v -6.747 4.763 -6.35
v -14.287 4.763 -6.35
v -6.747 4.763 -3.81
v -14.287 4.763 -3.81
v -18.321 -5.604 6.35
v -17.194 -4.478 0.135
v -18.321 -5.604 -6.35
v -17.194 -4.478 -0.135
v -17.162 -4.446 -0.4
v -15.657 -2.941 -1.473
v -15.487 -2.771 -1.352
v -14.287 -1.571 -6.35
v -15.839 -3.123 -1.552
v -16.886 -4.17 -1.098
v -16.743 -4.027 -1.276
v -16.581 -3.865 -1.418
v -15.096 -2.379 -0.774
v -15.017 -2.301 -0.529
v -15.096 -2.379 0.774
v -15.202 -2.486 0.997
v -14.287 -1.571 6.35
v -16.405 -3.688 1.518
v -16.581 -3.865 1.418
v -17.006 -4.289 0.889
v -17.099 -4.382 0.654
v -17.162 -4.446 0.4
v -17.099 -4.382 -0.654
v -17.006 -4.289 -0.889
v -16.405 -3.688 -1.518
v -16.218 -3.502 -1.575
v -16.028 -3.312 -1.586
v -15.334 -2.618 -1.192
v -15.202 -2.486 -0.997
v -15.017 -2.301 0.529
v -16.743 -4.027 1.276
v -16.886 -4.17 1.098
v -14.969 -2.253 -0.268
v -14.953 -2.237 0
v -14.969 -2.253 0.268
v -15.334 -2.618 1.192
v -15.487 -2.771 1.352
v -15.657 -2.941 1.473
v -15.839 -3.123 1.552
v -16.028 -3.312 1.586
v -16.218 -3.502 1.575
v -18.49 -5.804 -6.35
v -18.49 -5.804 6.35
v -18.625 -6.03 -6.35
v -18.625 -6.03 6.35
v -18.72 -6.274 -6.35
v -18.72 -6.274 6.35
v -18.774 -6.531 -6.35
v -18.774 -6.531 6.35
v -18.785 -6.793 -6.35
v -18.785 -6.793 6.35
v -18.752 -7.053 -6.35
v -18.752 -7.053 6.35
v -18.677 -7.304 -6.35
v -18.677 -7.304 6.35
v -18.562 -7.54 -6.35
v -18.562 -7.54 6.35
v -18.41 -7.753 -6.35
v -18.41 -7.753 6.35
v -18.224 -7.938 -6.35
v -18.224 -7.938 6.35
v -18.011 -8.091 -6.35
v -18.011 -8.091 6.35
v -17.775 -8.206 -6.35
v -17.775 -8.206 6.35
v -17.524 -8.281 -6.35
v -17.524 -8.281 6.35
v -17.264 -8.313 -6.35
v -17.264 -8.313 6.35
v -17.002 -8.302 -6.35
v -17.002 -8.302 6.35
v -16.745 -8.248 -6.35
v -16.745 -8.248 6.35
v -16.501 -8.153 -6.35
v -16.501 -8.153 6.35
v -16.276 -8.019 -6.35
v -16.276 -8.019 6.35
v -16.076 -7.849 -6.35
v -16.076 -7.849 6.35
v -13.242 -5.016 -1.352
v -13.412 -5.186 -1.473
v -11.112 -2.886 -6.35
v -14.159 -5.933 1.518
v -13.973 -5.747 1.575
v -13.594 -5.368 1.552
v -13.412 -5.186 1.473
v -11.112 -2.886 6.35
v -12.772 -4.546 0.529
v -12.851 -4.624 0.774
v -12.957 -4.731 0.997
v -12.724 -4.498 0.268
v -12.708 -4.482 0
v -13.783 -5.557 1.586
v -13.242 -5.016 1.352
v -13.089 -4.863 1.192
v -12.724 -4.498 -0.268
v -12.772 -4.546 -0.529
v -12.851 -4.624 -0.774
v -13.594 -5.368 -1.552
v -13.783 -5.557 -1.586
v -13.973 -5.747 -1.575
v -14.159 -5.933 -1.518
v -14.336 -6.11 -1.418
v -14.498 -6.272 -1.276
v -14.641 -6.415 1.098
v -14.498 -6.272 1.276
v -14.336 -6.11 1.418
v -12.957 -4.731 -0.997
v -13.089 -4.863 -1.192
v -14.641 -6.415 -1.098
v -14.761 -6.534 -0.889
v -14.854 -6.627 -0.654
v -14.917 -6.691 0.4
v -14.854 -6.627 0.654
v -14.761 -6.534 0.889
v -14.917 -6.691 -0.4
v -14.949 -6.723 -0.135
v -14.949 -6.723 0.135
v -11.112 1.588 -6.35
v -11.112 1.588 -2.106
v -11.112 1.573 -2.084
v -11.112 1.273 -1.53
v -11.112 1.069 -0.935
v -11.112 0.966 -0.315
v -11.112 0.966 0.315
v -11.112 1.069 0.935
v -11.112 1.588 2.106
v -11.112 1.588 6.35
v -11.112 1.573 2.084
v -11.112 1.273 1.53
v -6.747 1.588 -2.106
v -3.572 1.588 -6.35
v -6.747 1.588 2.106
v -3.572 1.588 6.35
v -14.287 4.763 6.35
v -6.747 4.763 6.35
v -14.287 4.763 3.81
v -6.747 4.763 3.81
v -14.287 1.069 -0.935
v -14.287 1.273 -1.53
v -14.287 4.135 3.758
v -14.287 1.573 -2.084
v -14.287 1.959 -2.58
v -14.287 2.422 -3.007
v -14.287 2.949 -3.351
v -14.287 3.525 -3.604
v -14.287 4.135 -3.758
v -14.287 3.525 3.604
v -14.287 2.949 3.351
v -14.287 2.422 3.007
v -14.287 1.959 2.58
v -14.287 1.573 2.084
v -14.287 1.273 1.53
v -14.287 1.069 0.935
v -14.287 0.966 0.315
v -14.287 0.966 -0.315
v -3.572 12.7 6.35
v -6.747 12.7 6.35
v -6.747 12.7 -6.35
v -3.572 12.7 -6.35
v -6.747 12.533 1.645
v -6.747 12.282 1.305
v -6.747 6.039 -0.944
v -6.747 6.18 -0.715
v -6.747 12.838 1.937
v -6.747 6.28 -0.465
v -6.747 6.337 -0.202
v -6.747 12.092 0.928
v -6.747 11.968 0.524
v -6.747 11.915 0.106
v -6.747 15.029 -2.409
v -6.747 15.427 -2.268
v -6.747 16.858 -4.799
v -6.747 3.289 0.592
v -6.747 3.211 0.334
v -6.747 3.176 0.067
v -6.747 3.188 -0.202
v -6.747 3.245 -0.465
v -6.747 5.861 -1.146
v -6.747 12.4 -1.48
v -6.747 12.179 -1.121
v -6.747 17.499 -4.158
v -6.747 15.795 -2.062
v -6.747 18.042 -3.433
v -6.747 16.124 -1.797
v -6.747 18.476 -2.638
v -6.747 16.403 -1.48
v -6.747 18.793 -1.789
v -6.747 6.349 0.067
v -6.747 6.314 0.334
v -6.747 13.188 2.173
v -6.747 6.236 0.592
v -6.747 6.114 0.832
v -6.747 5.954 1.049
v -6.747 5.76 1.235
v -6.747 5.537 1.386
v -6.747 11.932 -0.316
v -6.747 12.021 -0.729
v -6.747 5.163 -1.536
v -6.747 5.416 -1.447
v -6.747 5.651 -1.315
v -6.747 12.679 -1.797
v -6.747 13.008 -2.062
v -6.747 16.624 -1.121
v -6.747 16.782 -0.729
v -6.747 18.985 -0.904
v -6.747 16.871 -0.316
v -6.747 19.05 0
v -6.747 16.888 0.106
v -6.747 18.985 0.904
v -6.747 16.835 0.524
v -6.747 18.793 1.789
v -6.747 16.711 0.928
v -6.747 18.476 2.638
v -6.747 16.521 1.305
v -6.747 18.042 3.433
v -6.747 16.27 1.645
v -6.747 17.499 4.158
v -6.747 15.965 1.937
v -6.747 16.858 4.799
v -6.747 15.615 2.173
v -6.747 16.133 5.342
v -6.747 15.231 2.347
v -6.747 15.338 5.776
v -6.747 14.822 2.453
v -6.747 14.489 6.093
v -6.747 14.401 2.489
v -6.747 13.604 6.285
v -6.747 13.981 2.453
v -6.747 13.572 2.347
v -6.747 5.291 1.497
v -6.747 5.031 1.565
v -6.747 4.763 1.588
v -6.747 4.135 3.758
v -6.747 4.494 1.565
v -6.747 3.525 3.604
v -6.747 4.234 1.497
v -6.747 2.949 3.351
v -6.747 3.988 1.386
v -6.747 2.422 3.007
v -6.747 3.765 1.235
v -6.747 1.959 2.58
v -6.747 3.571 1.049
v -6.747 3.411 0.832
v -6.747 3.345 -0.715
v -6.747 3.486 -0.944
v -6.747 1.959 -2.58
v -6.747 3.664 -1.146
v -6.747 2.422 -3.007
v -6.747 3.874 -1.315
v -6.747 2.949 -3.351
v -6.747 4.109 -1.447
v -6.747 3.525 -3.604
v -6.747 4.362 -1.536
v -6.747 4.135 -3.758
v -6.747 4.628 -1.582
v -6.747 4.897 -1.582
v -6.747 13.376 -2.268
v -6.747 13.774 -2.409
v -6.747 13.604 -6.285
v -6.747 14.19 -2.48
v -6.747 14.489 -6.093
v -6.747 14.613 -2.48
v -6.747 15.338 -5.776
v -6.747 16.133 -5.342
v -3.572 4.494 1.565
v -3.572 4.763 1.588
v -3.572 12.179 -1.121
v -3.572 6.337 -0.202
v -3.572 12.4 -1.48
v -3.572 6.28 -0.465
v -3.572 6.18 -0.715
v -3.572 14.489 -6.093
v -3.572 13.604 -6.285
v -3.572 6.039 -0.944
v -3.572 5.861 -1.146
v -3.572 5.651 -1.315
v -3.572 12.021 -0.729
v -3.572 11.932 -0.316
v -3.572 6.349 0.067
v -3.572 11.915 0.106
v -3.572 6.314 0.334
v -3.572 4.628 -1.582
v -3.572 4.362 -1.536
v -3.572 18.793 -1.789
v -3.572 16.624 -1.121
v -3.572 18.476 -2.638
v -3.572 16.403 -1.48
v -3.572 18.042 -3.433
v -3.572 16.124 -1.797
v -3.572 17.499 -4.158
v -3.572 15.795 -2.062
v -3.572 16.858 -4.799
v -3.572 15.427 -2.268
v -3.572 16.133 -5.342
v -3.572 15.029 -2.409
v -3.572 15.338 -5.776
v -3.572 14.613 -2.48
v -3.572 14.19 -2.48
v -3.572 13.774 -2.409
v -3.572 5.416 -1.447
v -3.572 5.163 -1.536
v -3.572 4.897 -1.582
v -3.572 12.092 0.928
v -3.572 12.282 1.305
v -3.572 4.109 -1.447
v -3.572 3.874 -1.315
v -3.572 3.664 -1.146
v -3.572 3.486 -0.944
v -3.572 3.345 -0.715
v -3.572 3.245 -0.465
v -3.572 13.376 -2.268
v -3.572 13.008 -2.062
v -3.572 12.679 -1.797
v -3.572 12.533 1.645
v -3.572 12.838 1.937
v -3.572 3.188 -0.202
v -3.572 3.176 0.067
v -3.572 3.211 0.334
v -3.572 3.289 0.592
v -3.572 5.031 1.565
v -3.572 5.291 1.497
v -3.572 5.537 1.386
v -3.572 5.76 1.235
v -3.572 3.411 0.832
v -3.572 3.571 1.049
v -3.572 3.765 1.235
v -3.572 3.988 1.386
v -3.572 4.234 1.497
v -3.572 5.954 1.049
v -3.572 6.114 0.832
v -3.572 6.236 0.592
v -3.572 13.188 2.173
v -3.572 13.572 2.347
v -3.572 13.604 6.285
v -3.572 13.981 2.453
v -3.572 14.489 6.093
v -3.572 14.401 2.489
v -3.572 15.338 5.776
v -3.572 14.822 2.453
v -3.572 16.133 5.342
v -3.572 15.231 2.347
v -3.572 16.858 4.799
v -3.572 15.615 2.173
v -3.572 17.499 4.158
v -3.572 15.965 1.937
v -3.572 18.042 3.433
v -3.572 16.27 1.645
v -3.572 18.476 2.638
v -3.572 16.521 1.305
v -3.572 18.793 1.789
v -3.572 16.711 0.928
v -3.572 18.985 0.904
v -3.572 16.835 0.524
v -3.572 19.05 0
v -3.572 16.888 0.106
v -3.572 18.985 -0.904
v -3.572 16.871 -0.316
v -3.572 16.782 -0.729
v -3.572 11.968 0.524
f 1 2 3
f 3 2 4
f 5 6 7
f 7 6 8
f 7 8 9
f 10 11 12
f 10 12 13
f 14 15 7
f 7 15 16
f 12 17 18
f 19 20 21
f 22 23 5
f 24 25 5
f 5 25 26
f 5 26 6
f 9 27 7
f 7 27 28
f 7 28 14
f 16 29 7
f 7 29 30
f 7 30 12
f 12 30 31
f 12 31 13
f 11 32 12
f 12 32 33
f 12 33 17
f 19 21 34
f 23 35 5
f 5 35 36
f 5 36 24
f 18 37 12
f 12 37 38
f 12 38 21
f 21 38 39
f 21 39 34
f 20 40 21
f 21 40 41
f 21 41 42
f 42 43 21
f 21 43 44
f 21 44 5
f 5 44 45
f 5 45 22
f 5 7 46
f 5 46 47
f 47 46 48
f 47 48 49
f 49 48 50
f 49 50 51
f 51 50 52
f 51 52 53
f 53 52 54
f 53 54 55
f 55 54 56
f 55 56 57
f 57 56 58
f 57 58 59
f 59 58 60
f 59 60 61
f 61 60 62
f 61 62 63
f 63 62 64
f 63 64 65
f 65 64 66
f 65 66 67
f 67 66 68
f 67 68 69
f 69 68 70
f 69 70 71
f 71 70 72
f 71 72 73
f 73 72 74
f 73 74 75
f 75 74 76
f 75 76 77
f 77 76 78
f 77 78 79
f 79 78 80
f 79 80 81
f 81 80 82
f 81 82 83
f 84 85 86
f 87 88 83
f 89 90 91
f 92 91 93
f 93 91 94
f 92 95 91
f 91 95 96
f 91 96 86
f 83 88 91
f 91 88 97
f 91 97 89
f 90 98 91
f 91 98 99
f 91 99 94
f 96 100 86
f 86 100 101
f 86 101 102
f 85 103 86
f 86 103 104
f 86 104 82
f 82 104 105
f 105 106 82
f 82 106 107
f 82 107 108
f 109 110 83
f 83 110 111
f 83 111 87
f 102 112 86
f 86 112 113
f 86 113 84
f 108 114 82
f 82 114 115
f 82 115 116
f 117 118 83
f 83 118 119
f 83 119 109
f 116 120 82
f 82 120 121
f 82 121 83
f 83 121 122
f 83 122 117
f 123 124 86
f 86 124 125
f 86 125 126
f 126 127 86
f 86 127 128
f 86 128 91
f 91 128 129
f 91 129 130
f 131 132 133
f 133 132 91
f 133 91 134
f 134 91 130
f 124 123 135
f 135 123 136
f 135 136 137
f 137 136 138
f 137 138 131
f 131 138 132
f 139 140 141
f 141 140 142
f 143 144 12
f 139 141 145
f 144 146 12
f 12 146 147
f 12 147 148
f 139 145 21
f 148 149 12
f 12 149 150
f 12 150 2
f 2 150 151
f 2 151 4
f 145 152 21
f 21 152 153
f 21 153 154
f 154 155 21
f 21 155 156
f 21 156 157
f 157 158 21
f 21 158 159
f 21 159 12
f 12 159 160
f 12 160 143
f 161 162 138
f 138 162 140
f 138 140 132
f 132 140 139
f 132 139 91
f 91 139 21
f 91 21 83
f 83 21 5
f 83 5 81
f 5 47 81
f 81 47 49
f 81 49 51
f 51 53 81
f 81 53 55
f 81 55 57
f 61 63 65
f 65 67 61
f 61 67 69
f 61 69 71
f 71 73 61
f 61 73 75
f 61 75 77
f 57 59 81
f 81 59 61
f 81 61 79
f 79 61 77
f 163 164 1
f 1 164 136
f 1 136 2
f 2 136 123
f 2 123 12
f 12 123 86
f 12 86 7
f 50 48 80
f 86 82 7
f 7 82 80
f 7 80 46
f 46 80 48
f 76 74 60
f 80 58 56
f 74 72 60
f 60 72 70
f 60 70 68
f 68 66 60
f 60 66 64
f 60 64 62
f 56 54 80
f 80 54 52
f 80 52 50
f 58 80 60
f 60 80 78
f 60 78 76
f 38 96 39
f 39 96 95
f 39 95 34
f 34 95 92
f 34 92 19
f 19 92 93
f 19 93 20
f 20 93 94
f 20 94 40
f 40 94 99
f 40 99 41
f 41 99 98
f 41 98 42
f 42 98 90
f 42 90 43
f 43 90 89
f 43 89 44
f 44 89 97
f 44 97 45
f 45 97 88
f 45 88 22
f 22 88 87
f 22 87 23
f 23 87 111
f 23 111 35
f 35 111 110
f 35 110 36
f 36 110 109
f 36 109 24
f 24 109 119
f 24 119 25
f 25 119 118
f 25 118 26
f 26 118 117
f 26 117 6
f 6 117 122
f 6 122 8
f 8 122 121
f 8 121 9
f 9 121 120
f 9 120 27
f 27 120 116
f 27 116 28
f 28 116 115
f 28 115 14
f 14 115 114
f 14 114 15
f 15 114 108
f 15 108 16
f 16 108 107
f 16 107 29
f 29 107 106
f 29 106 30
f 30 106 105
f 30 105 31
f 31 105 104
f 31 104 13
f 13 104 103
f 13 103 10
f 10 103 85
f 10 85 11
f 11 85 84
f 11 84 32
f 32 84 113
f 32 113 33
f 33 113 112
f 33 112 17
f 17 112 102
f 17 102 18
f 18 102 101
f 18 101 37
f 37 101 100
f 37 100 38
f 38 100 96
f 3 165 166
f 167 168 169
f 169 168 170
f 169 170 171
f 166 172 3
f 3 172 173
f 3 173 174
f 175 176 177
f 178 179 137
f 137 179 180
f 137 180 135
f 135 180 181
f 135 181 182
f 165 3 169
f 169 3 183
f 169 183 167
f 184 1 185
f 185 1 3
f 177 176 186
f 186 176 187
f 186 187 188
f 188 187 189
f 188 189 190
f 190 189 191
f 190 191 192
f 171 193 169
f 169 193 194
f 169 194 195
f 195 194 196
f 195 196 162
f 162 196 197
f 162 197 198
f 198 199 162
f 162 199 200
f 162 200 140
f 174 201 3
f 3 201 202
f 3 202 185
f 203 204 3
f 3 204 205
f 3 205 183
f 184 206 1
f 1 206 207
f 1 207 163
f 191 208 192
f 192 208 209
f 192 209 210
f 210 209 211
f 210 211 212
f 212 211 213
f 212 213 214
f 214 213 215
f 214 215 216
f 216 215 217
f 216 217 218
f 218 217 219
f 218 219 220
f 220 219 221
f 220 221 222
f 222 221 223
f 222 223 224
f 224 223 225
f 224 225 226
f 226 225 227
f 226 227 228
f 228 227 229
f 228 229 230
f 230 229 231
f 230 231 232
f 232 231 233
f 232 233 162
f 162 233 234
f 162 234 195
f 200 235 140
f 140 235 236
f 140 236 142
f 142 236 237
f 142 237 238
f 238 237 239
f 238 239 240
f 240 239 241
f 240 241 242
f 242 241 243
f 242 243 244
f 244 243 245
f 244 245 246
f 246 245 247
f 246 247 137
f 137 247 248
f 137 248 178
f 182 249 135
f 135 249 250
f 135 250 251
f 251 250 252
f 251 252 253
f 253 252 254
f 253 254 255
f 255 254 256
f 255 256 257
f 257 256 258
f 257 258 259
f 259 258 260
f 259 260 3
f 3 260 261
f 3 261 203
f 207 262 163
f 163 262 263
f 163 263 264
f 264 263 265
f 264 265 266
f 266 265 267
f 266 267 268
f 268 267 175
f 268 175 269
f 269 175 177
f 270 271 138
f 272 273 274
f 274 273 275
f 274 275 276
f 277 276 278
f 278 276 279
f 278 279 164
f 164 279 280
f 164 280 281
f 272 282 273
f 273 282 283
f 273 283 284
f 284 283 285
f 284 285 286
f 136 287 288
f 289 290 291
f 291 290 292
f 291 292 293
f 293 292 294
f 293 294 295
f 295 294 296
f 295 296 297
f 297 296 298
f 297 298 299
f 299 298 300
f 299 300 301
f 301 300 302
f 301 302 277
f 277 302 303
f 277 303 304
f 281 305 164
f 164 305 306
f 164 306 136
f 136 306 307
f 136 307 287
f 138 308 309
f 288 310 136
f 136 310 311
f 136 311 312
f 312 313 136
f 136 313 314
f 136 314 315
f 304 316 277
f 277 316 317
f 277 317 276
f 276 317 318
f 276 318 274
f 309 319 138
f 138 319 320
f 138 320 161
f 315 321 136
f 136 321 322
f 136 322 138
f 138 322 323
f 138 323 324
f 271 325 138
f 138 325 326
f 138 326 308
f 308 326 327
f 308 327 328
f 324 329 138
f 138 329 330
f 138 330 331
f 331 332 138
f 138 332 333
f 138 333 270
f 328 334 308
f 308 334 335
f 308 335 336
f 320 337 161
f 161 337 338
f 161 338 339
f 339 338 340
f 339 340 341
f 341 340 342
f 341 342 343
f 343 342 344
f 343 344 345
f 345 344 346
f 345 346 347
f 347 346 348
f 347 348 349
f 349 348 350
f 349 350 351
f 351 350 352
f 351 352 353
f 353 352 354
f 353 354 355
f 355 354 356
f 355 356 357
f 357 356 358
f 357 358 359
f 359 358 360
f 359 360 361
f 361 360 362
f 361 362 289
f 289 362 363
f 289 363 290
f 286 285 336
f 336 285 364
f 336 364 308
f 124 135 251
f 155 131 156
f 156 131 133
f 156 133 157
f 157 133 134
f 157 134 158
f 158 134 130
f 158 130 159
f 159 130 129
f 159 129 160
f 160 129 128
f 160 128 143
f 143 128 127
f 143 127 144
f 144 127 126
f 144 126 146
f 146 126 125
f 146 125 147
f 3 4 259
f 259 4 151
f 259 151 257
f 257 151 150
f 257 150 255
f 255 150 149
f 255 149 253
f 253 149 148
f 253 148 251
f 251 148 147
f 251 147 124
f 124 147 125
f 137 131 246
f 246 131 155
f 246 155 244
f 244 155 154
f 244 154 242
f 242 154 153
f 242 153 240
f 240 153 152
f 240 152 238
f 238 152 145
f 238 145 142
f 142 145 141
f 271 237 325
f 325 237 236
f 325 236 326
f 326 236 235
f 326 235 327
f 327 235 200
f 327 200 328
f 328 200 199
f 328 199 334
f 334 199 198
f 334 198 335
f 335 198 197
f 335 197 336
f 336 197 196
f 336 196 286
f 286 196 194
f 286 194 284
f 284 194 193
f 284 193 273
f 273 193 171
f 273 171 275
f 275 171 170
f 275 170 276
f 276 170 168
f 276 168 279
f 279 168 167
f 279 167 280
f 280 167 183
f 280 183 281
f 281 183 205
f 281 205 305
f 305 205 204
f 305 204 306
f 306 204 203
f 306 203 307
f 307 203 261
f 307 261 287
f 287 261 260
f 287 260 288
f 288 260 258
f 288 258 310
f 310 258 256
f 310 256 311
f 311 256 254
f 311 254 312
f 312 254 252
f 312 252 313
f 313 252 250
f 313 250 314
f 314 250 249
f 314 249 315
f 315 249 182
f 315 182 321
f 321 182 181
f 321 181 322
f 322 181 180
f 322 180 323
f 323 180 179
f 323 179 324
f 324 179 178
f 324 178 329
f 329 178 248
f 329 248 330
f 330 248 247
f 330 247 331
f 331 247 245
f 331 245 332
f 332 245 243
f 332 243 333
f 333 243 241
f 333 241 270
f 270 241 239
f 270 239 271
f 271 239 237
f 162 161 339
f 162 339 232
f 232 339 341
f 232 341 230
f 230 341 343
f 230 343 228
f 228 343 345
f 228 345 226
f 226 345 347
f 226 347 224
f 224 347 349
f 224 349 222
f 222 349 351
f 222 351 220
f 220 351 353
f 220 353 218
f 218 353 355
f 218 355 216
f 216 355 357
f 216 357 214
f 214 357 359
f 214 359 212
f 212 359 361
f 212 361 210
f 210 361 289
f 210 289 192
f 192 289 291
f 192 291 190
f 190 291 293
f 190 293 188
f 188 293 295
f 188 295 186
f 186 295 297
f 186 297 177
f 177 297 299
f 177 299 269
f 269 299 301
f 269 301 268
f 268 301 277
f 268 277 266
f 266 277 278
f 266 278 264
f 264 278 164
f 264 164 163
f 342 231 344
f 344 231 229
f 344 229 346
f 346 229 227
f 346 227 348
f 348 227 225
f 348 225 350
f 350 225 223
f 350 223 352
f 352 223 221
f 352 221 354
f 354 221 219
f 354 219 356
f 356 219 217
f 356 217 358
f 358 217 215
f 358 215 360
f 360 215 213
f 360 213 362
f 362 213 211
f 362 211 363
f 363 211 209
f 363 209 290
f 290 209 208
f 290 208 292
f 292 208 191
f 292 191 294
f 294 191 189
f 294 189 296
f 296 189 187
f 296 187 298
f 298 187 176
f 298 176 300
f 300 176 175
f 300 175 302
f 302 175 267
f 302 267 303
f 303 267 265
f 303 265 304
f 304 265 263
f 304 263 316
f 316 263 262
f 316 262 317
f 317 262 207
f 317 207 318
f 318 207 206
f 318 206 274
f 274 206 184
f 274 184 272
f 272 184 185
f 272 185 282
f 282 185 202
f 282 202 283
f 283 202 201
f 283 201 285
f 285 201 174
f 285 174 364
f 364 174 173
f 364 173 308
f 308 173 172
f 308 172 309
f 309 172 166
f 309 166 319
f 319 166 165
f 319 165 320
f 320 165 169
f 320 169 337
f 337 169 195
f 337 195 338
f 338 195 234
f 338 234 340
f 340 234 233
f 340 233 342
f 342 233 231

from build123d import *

# Parameters (mm, degrees)
BOSS_EXTRUDE1_DEPTH     = 6.35
SKETCH3_R               = 1.5875
CUT_EXTRUDE1_DEPTH      = 12.696129591
CUT_EXTRUDE1_DEPTH_BACK = 11.834286606
SKETCH4_W               = 3.175
SKETCH4_H               = 7.9375
BOSS_EXTRUDE3_DEPTH     = 6.35
SKETCH5_R               = 3.81
CUT_EXTRUDE2_DEPTH      = 7.540625
SKETCH6_R               = 1.5875
CUT_EXTRUDE3_DEPTH      = 15.2875
SKETCH7_W               = 3.571875
SKETCH7_H               = 3.175
CUT_EXTRUDE4_DEPTH      = 13.7
BOSS_EXTRUDE4_DEPTH     = 3.175
CUT_EXTRUDE5_DEPTH      = 13.039014125
CUT_EXTRUDE5_DEPTH_BACK = 4.175


with BuildPart() as part:
    # Sketch2 → Boss-Extrude1 (new body, symmetric)
    with BuildSketch(Plane.XY):
        with BuildLine():
            Line((-14.2875, -1.570977871), (-18.32092114, -5.604399011))
            ThreePointArc((-18.32092114, -5.604399011), (-18.32092114, -7.849463042), (-16.07585711, -7.849463042))
            Line((-16.07585711, -7.849463042), (-11.1125, -2.886105932))
            Line((-11.1125, -2.886105932), (-11.1125, 1.5875))
            Line((-11.1125, 1.5875), (0, 1.5875))
            Line((0, 1.5875), (0, 4.7625))
            Line((0, 4.7625), (-14.2875, 4.7625))
            Line((-14.2875, 4.7625), (-14.2875, -1.570977871))
        make_face()
    extrude(amount=BOSS_EXTRUDE1_DEPTH, both=True)

    # Sketch3 → Cut-Extrude1 (cut, two sides)
    with BuildSketch(Plane(origin=(-4.113197034, 4.113197034, 0), x_dir=(0, 0, -1), z_dir=(0.707106781, -0.707106781, 0))) as cut_extrude1_sk:
        with Locations((0, -13.742756121)):
            Circle(SKETCH3_R)
    extrude(amount=CUT_EXTRUDE1_DEPTH, mode=Mode.SUBTRACT)
    extrude(cut_extrude1_sk.sketch, amount=-CUT_EXTRUDE1_DEPTH_BACK, mode=Mode.SUBTRACT)

    # Sketch4 → Boss-Extrude3 (add, symmetric)
    with BuildSketch(Plane.XY):
        with Locations((-5.159375, 5.55625)):
            Rectangle(SKETCH4_W, SKETCH4_H)
    extrude(amount=BOSS_EXTRUDE3_DEPTH, both=True)

    # Sketch5 → Cut-Extrude2 (cut)
    with BuildSketch(Plane.ZY.offset(14.2875)):
        with Locations((0, 4.7625)):
            Circle(SKETCH5_R)
    extrude(amount=-CUT_EXTRUDE2_DEPTH, mode=Mode.SUBTRACT)

    # Sketch6 → Cut-Extrude3 (cut, through all)
    with BuildSketch(Plane.ZY.offset(14.2875)):
        with Locations((0, 4.7625)):
            Circle(SKETCH6_R)
    extrude(amount=-CUT_EXTRUDE3_DEPTH, mode=Mode.SUBTRACT)

    # Sketch7 → Cut-Extrude4 (cut, through all)
    with BuildSketch(Plane.XY.offset(6.35)):
        with Locations((-1.7859375, 3.175)):
            Rectangle(SKETCH7_W, SKETCH7_H)
    extrude(amount=-CUT_EXTRUDE4_DEPTH, mode=Mode.SUBTRACT)

    # Sketch8 → Boss-Extrude4 (add)
    with BuildSketch(Plane(origin=(-3.571875, 0, 0), x_dir=(0, 0, -1), z_dir=(1, 0, 0))):
        with BuildLine():
            ThreePointArc((6.35, 12.7), (0, 19.05), (-6.35, 12.7))
            ThreePointArc((-6.35, 12.7), (-6.133628997, 11.056499064), (-5.499261314, 9.525))
            Line((-5.499261314, 9.525), (5.499261314, 9.525))
            ThreePointArc((5.499261314, 9.525), (6.133628997, 11.056499064), (6.35, 12.7))
        make_face()
        with BuildLine():
            Line((5.499261314, 9.525), (-5.499261314, 9.525))
            ThreePointArc((-5.499261314, 9.525), (0, 6.35), (5.499261314, 9.525))
        make_face()
        with BuildLine():
            Line((-6.35, 12.7), (-6.35, 9.525))
            Line((-6.35, 9.525), (-5.499261314, 9.525))
            ThreePointArc((-5.499261314, 9.525), (-6.133628997, 11.056499064), (-6.35, 12.7))
        make_face()
        with BuildLine():
            Line((6.35, 9.525), (6.35, 12.7))
            ThreePointArc((6.35, 12.7), (6.133628997, 11.056499064), (5.499261314, 9.525))
            Line((5.499261314, 9.525), (6.35, 9.525))
        make_face()
    extrude(amount=-BOSS_EXTRUDE4_DEPTH)

    # Sketch9 → Cut-Extrude5 (cut, two sides)
    with BuildSketch(Plane.ZY.offset(6.746875)) as cut_extrude5_sk:
        with BuildLine():
            ThreePointArc((-2.404382567, 13.757225005), (0, 11.912277372), (2.404382567, 13.757225005))
            Line((2.404382567, 13.757225005), (0, 14.401477372))
            Line((0, 14.401477372), (-2.404382567, 13.757225005))
        make_face()
        with BuildLine():
            Line((0, 14.401477372), (2.404382567, 13.757225005))
            ThreePointArc((2.404382567, 13.757225005), (2.467904549, 14.076571574), (2.4892, 14.401477372))
            ThreePointArc((2.4892, 14.401477372), (2.467904549, 14.72638317), (2.404382567, 15.045729739))
            Line((2.404382567, 15.045729739), (0, 14.401477372))
        make_face()
        with BuildLine():
            Line((-2.404382567, 13.757225005), (0, 14.401477372))
            Line((0, 14.401477372), (-2.404382567, 15.045729739))
            ThreePointArc((-2.404382567, 15.045729739), (-2.4892, 14.401477372), (-2.404382567, 13.757225005))
        make_face()
        with BuildLine():
            Line((-2.404382567, 15.045729739), (0, 14.401477372))
            Line((0, 14.401477372), (2.404382567, 15.045729739))
            ThreePointArc((2.404382567, 15.045729739), (0, 16.890677372), (-2.404382567, 15.045729739))
        make_face()
    extrude(amount=CUT_EXTRUDE5_DEPTH, mode=Mode.SUBTRACT)
    extrude(cut_extrude5_sk.sketch, amount=-CUT_EXTRUDE5_DEPTH_BACK, mode=Mode.SUBTRACT)


solid = part.part
